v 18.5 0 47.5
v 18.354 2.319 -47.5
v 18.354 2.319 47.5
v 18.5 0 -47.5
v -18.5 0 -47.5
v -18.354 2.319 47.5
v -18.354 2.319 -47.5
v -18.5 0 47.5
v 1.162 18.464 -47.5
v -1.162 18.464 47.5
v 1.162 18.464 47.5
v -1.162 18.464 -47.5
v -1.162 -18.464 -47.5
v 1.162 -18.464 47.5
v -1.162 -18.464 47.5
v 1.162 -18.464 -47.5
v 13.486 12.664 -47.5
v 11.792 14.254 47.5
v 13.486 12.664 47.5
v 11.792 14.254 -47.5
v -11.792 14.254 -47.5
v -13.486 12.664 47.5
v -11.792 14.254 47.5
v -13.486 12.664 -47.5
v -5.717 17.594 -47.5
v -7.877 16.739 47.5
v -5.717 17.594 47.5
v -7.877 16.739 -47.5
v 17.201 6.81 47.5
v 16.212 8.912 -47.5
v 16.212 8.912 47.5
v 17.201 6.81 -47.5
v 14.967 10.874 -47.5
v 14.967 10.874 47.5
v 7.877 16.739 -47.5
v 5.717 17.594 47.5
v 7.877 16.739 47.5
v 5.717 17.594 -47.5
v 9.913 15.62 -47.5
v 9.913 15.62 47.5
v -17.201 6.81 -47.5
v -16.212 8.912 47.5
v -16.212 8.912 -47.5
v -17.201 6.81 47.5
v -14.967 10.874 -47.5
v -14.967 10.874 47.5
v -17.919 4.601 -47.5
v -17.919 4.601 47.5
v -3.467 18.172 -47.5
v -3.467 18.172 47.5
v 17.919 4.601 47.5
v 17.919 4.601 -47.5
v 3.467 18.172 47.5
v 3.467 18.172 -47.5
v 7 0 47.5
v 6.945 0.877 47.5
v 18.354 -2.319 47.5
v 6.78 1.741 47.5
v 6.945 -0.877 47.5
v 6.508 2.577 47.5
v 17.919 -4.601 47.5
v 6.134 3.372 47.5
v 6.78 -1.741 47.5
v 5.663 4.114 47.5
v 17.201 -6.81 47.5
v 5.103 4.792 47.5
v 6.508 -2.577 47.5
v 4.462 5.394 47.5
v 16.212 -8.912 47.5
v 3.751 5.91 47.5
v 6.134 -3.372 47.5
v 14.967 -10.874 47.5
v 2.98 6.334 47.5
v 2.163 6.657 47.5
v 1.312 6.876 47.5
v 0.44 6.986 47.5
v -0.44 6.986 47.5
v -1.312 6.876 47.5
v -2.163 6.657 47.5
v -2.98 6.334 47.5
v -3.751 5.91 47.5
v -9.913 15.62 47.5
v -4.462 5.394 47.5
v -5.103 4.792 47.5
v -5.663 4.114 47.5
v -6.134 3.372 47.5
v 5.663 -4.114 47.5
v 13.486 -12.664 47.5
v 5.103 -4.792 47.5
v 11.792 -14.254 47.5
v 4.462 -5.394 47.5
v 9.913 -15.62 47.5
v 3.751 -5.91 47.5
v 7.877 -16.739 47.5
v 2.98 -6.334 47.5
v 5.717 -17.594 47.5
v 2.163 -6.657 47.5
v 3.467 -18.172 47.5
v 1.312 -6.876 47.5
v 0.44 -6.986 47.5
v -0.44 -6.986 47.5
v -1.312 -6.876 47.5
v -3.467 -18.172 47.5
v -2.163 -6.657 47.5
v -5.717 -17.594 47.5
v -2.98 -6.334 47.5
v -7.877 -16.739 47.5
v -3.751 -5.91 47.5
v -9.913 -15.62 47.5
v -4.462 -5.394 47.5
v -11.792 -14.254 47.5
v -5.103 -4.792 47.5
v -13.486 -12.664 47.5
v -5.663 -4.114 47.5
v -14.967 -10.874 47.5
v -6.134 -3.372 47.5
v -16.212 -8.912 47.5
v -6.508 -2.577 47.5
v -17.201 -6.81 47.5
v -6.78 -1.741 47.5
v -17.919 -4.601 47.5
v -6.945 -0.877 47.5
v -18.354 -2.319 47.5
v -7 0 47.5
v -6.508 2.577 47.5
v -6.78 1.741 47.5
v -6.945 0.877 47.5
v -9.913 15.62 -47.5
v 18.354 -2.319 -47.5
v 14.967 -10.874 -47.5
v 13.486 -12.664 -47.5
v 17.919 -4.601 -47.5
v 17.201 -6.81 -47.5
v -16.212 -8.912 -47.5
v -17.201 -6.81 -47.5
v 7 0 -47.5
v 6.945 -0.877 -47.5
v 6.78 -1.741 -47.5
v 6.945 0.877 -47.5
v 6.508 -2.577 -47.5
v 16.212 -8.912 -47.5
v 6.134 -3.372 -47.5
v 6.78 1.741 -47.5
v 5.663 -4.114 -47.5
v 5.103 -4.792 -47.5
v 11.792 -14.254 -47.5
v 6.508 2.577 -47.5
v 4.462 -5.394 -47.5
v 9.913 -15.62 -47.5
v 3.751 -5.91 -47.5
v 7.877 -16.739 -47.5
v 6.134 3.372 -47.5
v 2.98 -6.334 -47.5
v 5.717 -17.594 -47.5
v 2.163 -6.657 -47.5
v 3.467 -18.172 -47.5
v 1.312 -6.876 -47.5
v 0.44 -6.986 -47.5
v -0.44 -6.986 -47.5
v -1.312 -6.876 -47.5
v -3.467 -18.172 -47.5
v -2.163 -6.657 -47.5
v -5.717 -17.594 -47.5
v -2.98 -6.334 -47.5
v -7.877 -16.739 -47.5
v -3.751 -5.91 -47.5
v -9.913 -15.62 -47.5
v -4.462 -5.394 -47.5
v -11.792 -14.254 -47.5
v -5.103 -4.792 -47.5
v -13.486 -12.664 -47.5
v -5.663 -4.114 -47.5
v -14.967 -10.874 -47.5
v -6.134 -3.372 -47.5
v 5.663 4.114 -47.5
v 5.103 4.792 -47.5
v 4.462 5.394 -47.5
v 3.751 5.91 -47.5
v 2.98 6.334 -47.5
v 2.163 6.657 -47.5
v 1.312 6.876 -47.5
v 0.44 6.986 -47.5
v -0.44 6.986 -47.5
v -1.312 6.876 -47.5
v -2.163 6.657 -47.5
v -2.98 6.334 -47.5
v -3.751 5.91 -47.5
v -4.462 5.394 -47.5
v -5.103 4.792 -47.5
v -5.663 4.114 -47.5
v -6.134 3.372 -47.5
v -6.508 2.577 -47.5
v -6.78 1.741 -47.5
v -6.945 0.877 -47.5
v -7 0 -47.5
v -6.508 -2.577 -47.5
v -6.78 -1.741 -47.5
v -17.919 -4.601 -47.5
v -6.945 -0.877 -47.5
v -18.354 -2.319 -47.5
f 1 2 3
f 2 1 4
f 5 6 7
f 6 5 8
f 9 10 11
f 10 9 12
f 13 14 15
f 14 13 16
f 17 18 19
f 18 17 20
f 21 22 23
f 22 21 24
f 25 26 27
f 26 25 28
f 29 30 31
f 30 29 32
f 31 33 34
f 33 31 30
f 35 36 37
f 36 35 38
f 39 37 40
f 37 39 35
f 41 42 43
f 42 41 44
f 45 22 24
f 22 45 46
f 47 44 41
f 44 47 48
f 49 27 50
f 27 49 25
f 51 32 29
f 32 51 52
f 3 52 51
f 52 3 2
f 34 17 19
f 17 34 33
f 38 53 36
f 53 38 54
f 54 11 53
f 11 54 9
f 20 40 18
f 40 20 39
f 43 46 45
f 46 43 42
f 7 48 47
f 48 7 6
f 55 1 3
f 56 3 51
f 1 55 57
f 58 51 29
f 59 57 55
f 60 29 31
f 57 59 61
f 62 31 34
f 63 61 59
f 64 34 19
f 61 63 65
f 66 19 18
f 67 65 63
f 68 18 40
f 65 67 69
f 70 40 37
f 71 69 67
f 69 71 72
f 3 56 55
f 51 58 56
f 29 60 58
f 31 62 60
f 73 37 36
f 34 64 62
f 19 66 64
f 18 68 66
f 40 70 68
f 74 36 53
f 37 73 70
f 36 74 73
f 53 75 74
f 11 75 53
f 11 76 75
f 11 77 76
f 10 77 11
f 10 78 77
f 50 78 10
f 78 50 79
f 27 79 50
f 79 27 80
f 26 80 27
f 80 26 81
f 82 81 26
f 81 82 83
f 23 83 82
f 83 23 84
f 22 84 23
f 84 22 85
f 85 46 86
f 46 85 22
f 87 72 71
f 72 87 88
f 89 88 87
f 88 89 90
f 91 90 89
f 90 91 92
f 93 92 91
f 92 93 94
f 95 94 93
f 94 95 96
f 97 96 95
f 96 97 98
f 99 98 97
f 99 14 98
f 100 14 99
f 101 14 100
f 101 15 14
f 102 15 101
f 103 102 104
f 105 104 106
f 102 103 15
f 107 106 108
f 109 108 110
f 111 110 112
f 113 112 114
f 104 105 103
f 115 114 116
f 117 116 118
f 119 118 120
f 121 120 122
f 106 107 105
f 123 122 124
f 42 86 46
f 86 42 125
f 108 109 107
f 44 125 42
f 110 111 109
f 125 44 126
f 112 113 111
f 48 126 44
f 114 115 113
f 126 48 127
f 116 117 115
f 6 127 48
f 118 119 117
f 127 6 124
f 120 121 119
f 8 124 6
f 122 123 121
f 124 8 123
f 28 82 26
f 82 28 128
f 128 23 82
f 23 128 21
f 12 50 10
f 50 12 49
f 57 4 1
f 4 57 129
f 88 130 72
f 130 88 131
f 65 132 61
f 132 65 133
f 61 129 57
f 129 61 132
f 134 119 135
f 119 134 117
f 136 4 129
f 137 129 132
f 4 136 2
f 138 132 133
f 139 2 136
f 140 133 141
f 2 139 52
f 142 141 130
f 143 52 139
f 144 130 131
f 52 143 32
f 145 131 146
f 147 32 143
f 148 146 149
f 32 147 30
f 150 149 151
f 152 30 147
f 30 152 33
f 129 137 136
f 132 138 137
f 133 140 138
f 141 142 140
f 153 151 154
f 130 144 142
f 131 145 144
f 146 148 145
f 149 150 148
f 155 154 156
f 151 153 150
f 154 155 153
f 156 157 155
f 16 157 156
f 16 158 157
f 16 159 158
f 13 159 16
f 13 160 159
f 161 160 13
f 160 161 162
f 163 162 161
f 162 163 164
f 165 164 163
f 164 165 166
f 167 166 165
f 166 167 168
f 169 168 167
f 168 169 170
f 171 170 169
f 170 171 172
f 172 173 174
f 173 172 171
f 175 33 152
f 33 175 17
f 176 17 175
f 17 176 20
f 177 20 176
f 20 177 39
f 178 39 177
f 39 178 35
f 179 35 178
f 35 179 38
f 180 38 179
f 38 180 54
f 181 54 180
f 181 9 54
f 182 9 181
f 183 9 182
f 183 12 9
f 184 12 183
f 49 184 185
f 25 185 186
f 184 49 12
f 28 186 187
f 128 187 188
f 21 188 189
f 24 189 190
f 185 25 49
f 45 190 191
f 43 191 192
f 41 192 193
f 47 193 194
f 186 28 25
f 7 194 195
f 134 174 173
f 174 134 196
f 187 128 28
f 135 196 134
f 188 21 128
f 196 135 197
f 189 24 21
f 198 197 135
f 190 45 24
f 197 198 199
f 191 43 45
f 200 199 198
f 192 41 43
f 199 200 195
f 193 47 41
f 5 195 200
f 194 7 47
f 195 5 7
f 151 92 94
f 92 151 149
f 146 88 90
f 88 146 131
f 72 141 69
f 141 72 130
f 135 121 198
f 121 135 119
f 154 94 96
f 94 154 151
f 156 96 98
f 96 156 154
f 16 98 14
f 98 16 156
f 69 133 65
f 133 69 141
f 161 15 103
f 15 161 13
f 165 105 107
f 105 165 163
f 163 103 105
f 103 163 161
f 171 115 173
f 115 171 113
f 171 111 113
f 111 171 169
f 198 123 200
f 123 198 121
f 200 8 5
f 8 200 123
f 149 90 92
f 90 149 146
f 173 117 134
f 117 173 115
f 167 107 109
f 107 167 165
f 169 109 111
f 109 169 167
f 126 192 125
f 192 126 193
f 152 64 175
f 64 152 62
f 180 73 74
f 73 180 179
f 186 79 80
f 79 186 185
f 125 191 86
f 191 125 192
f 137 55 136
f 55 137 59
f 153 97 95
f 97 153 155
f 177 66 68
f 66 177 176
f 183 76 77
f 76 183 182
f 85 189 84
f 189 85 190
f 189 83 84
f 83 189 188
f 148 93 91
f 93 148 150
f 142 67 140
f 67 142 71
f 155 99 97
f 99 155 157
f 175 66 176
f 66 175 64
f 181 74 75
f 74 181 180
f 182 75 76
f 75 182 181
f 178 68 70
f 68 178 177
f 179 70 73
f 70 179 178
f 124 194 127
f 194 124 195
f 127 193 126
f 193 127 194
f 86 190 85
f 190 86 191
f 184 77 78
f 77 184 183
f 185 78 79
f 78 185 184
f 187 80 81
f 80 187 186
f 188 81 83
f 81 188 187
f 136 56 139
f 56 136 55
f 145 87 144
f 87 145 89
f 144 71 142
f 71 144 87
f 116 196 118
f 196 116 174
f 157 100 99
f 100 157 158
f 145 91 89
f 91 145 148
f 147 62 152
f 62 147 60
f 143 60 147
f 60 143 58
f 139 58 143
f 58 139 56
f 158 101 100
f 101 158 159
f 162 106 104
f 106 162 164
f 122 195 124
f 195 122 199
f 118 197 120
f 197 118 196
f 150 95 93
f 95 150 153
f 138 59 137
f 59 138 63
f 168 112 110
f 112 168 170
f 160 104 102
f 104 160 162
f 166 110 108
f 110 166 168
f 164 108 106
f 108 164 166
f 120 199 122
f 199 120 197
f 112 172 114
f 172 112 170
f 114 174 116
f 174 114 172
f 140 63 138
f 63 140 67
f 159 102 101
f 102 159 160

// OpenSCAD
$fn = 50;


difference() {
	union() {
		translate(v = [0, 0, -47.5000000000]) {
			cylinder(h = 95, r = 18.5000000000);
		}
	}
	union() {
		translate(v = [0, 0, -100.0000000000]) {
			cylinder(h = 200, r = 7);
		}
	}
}
